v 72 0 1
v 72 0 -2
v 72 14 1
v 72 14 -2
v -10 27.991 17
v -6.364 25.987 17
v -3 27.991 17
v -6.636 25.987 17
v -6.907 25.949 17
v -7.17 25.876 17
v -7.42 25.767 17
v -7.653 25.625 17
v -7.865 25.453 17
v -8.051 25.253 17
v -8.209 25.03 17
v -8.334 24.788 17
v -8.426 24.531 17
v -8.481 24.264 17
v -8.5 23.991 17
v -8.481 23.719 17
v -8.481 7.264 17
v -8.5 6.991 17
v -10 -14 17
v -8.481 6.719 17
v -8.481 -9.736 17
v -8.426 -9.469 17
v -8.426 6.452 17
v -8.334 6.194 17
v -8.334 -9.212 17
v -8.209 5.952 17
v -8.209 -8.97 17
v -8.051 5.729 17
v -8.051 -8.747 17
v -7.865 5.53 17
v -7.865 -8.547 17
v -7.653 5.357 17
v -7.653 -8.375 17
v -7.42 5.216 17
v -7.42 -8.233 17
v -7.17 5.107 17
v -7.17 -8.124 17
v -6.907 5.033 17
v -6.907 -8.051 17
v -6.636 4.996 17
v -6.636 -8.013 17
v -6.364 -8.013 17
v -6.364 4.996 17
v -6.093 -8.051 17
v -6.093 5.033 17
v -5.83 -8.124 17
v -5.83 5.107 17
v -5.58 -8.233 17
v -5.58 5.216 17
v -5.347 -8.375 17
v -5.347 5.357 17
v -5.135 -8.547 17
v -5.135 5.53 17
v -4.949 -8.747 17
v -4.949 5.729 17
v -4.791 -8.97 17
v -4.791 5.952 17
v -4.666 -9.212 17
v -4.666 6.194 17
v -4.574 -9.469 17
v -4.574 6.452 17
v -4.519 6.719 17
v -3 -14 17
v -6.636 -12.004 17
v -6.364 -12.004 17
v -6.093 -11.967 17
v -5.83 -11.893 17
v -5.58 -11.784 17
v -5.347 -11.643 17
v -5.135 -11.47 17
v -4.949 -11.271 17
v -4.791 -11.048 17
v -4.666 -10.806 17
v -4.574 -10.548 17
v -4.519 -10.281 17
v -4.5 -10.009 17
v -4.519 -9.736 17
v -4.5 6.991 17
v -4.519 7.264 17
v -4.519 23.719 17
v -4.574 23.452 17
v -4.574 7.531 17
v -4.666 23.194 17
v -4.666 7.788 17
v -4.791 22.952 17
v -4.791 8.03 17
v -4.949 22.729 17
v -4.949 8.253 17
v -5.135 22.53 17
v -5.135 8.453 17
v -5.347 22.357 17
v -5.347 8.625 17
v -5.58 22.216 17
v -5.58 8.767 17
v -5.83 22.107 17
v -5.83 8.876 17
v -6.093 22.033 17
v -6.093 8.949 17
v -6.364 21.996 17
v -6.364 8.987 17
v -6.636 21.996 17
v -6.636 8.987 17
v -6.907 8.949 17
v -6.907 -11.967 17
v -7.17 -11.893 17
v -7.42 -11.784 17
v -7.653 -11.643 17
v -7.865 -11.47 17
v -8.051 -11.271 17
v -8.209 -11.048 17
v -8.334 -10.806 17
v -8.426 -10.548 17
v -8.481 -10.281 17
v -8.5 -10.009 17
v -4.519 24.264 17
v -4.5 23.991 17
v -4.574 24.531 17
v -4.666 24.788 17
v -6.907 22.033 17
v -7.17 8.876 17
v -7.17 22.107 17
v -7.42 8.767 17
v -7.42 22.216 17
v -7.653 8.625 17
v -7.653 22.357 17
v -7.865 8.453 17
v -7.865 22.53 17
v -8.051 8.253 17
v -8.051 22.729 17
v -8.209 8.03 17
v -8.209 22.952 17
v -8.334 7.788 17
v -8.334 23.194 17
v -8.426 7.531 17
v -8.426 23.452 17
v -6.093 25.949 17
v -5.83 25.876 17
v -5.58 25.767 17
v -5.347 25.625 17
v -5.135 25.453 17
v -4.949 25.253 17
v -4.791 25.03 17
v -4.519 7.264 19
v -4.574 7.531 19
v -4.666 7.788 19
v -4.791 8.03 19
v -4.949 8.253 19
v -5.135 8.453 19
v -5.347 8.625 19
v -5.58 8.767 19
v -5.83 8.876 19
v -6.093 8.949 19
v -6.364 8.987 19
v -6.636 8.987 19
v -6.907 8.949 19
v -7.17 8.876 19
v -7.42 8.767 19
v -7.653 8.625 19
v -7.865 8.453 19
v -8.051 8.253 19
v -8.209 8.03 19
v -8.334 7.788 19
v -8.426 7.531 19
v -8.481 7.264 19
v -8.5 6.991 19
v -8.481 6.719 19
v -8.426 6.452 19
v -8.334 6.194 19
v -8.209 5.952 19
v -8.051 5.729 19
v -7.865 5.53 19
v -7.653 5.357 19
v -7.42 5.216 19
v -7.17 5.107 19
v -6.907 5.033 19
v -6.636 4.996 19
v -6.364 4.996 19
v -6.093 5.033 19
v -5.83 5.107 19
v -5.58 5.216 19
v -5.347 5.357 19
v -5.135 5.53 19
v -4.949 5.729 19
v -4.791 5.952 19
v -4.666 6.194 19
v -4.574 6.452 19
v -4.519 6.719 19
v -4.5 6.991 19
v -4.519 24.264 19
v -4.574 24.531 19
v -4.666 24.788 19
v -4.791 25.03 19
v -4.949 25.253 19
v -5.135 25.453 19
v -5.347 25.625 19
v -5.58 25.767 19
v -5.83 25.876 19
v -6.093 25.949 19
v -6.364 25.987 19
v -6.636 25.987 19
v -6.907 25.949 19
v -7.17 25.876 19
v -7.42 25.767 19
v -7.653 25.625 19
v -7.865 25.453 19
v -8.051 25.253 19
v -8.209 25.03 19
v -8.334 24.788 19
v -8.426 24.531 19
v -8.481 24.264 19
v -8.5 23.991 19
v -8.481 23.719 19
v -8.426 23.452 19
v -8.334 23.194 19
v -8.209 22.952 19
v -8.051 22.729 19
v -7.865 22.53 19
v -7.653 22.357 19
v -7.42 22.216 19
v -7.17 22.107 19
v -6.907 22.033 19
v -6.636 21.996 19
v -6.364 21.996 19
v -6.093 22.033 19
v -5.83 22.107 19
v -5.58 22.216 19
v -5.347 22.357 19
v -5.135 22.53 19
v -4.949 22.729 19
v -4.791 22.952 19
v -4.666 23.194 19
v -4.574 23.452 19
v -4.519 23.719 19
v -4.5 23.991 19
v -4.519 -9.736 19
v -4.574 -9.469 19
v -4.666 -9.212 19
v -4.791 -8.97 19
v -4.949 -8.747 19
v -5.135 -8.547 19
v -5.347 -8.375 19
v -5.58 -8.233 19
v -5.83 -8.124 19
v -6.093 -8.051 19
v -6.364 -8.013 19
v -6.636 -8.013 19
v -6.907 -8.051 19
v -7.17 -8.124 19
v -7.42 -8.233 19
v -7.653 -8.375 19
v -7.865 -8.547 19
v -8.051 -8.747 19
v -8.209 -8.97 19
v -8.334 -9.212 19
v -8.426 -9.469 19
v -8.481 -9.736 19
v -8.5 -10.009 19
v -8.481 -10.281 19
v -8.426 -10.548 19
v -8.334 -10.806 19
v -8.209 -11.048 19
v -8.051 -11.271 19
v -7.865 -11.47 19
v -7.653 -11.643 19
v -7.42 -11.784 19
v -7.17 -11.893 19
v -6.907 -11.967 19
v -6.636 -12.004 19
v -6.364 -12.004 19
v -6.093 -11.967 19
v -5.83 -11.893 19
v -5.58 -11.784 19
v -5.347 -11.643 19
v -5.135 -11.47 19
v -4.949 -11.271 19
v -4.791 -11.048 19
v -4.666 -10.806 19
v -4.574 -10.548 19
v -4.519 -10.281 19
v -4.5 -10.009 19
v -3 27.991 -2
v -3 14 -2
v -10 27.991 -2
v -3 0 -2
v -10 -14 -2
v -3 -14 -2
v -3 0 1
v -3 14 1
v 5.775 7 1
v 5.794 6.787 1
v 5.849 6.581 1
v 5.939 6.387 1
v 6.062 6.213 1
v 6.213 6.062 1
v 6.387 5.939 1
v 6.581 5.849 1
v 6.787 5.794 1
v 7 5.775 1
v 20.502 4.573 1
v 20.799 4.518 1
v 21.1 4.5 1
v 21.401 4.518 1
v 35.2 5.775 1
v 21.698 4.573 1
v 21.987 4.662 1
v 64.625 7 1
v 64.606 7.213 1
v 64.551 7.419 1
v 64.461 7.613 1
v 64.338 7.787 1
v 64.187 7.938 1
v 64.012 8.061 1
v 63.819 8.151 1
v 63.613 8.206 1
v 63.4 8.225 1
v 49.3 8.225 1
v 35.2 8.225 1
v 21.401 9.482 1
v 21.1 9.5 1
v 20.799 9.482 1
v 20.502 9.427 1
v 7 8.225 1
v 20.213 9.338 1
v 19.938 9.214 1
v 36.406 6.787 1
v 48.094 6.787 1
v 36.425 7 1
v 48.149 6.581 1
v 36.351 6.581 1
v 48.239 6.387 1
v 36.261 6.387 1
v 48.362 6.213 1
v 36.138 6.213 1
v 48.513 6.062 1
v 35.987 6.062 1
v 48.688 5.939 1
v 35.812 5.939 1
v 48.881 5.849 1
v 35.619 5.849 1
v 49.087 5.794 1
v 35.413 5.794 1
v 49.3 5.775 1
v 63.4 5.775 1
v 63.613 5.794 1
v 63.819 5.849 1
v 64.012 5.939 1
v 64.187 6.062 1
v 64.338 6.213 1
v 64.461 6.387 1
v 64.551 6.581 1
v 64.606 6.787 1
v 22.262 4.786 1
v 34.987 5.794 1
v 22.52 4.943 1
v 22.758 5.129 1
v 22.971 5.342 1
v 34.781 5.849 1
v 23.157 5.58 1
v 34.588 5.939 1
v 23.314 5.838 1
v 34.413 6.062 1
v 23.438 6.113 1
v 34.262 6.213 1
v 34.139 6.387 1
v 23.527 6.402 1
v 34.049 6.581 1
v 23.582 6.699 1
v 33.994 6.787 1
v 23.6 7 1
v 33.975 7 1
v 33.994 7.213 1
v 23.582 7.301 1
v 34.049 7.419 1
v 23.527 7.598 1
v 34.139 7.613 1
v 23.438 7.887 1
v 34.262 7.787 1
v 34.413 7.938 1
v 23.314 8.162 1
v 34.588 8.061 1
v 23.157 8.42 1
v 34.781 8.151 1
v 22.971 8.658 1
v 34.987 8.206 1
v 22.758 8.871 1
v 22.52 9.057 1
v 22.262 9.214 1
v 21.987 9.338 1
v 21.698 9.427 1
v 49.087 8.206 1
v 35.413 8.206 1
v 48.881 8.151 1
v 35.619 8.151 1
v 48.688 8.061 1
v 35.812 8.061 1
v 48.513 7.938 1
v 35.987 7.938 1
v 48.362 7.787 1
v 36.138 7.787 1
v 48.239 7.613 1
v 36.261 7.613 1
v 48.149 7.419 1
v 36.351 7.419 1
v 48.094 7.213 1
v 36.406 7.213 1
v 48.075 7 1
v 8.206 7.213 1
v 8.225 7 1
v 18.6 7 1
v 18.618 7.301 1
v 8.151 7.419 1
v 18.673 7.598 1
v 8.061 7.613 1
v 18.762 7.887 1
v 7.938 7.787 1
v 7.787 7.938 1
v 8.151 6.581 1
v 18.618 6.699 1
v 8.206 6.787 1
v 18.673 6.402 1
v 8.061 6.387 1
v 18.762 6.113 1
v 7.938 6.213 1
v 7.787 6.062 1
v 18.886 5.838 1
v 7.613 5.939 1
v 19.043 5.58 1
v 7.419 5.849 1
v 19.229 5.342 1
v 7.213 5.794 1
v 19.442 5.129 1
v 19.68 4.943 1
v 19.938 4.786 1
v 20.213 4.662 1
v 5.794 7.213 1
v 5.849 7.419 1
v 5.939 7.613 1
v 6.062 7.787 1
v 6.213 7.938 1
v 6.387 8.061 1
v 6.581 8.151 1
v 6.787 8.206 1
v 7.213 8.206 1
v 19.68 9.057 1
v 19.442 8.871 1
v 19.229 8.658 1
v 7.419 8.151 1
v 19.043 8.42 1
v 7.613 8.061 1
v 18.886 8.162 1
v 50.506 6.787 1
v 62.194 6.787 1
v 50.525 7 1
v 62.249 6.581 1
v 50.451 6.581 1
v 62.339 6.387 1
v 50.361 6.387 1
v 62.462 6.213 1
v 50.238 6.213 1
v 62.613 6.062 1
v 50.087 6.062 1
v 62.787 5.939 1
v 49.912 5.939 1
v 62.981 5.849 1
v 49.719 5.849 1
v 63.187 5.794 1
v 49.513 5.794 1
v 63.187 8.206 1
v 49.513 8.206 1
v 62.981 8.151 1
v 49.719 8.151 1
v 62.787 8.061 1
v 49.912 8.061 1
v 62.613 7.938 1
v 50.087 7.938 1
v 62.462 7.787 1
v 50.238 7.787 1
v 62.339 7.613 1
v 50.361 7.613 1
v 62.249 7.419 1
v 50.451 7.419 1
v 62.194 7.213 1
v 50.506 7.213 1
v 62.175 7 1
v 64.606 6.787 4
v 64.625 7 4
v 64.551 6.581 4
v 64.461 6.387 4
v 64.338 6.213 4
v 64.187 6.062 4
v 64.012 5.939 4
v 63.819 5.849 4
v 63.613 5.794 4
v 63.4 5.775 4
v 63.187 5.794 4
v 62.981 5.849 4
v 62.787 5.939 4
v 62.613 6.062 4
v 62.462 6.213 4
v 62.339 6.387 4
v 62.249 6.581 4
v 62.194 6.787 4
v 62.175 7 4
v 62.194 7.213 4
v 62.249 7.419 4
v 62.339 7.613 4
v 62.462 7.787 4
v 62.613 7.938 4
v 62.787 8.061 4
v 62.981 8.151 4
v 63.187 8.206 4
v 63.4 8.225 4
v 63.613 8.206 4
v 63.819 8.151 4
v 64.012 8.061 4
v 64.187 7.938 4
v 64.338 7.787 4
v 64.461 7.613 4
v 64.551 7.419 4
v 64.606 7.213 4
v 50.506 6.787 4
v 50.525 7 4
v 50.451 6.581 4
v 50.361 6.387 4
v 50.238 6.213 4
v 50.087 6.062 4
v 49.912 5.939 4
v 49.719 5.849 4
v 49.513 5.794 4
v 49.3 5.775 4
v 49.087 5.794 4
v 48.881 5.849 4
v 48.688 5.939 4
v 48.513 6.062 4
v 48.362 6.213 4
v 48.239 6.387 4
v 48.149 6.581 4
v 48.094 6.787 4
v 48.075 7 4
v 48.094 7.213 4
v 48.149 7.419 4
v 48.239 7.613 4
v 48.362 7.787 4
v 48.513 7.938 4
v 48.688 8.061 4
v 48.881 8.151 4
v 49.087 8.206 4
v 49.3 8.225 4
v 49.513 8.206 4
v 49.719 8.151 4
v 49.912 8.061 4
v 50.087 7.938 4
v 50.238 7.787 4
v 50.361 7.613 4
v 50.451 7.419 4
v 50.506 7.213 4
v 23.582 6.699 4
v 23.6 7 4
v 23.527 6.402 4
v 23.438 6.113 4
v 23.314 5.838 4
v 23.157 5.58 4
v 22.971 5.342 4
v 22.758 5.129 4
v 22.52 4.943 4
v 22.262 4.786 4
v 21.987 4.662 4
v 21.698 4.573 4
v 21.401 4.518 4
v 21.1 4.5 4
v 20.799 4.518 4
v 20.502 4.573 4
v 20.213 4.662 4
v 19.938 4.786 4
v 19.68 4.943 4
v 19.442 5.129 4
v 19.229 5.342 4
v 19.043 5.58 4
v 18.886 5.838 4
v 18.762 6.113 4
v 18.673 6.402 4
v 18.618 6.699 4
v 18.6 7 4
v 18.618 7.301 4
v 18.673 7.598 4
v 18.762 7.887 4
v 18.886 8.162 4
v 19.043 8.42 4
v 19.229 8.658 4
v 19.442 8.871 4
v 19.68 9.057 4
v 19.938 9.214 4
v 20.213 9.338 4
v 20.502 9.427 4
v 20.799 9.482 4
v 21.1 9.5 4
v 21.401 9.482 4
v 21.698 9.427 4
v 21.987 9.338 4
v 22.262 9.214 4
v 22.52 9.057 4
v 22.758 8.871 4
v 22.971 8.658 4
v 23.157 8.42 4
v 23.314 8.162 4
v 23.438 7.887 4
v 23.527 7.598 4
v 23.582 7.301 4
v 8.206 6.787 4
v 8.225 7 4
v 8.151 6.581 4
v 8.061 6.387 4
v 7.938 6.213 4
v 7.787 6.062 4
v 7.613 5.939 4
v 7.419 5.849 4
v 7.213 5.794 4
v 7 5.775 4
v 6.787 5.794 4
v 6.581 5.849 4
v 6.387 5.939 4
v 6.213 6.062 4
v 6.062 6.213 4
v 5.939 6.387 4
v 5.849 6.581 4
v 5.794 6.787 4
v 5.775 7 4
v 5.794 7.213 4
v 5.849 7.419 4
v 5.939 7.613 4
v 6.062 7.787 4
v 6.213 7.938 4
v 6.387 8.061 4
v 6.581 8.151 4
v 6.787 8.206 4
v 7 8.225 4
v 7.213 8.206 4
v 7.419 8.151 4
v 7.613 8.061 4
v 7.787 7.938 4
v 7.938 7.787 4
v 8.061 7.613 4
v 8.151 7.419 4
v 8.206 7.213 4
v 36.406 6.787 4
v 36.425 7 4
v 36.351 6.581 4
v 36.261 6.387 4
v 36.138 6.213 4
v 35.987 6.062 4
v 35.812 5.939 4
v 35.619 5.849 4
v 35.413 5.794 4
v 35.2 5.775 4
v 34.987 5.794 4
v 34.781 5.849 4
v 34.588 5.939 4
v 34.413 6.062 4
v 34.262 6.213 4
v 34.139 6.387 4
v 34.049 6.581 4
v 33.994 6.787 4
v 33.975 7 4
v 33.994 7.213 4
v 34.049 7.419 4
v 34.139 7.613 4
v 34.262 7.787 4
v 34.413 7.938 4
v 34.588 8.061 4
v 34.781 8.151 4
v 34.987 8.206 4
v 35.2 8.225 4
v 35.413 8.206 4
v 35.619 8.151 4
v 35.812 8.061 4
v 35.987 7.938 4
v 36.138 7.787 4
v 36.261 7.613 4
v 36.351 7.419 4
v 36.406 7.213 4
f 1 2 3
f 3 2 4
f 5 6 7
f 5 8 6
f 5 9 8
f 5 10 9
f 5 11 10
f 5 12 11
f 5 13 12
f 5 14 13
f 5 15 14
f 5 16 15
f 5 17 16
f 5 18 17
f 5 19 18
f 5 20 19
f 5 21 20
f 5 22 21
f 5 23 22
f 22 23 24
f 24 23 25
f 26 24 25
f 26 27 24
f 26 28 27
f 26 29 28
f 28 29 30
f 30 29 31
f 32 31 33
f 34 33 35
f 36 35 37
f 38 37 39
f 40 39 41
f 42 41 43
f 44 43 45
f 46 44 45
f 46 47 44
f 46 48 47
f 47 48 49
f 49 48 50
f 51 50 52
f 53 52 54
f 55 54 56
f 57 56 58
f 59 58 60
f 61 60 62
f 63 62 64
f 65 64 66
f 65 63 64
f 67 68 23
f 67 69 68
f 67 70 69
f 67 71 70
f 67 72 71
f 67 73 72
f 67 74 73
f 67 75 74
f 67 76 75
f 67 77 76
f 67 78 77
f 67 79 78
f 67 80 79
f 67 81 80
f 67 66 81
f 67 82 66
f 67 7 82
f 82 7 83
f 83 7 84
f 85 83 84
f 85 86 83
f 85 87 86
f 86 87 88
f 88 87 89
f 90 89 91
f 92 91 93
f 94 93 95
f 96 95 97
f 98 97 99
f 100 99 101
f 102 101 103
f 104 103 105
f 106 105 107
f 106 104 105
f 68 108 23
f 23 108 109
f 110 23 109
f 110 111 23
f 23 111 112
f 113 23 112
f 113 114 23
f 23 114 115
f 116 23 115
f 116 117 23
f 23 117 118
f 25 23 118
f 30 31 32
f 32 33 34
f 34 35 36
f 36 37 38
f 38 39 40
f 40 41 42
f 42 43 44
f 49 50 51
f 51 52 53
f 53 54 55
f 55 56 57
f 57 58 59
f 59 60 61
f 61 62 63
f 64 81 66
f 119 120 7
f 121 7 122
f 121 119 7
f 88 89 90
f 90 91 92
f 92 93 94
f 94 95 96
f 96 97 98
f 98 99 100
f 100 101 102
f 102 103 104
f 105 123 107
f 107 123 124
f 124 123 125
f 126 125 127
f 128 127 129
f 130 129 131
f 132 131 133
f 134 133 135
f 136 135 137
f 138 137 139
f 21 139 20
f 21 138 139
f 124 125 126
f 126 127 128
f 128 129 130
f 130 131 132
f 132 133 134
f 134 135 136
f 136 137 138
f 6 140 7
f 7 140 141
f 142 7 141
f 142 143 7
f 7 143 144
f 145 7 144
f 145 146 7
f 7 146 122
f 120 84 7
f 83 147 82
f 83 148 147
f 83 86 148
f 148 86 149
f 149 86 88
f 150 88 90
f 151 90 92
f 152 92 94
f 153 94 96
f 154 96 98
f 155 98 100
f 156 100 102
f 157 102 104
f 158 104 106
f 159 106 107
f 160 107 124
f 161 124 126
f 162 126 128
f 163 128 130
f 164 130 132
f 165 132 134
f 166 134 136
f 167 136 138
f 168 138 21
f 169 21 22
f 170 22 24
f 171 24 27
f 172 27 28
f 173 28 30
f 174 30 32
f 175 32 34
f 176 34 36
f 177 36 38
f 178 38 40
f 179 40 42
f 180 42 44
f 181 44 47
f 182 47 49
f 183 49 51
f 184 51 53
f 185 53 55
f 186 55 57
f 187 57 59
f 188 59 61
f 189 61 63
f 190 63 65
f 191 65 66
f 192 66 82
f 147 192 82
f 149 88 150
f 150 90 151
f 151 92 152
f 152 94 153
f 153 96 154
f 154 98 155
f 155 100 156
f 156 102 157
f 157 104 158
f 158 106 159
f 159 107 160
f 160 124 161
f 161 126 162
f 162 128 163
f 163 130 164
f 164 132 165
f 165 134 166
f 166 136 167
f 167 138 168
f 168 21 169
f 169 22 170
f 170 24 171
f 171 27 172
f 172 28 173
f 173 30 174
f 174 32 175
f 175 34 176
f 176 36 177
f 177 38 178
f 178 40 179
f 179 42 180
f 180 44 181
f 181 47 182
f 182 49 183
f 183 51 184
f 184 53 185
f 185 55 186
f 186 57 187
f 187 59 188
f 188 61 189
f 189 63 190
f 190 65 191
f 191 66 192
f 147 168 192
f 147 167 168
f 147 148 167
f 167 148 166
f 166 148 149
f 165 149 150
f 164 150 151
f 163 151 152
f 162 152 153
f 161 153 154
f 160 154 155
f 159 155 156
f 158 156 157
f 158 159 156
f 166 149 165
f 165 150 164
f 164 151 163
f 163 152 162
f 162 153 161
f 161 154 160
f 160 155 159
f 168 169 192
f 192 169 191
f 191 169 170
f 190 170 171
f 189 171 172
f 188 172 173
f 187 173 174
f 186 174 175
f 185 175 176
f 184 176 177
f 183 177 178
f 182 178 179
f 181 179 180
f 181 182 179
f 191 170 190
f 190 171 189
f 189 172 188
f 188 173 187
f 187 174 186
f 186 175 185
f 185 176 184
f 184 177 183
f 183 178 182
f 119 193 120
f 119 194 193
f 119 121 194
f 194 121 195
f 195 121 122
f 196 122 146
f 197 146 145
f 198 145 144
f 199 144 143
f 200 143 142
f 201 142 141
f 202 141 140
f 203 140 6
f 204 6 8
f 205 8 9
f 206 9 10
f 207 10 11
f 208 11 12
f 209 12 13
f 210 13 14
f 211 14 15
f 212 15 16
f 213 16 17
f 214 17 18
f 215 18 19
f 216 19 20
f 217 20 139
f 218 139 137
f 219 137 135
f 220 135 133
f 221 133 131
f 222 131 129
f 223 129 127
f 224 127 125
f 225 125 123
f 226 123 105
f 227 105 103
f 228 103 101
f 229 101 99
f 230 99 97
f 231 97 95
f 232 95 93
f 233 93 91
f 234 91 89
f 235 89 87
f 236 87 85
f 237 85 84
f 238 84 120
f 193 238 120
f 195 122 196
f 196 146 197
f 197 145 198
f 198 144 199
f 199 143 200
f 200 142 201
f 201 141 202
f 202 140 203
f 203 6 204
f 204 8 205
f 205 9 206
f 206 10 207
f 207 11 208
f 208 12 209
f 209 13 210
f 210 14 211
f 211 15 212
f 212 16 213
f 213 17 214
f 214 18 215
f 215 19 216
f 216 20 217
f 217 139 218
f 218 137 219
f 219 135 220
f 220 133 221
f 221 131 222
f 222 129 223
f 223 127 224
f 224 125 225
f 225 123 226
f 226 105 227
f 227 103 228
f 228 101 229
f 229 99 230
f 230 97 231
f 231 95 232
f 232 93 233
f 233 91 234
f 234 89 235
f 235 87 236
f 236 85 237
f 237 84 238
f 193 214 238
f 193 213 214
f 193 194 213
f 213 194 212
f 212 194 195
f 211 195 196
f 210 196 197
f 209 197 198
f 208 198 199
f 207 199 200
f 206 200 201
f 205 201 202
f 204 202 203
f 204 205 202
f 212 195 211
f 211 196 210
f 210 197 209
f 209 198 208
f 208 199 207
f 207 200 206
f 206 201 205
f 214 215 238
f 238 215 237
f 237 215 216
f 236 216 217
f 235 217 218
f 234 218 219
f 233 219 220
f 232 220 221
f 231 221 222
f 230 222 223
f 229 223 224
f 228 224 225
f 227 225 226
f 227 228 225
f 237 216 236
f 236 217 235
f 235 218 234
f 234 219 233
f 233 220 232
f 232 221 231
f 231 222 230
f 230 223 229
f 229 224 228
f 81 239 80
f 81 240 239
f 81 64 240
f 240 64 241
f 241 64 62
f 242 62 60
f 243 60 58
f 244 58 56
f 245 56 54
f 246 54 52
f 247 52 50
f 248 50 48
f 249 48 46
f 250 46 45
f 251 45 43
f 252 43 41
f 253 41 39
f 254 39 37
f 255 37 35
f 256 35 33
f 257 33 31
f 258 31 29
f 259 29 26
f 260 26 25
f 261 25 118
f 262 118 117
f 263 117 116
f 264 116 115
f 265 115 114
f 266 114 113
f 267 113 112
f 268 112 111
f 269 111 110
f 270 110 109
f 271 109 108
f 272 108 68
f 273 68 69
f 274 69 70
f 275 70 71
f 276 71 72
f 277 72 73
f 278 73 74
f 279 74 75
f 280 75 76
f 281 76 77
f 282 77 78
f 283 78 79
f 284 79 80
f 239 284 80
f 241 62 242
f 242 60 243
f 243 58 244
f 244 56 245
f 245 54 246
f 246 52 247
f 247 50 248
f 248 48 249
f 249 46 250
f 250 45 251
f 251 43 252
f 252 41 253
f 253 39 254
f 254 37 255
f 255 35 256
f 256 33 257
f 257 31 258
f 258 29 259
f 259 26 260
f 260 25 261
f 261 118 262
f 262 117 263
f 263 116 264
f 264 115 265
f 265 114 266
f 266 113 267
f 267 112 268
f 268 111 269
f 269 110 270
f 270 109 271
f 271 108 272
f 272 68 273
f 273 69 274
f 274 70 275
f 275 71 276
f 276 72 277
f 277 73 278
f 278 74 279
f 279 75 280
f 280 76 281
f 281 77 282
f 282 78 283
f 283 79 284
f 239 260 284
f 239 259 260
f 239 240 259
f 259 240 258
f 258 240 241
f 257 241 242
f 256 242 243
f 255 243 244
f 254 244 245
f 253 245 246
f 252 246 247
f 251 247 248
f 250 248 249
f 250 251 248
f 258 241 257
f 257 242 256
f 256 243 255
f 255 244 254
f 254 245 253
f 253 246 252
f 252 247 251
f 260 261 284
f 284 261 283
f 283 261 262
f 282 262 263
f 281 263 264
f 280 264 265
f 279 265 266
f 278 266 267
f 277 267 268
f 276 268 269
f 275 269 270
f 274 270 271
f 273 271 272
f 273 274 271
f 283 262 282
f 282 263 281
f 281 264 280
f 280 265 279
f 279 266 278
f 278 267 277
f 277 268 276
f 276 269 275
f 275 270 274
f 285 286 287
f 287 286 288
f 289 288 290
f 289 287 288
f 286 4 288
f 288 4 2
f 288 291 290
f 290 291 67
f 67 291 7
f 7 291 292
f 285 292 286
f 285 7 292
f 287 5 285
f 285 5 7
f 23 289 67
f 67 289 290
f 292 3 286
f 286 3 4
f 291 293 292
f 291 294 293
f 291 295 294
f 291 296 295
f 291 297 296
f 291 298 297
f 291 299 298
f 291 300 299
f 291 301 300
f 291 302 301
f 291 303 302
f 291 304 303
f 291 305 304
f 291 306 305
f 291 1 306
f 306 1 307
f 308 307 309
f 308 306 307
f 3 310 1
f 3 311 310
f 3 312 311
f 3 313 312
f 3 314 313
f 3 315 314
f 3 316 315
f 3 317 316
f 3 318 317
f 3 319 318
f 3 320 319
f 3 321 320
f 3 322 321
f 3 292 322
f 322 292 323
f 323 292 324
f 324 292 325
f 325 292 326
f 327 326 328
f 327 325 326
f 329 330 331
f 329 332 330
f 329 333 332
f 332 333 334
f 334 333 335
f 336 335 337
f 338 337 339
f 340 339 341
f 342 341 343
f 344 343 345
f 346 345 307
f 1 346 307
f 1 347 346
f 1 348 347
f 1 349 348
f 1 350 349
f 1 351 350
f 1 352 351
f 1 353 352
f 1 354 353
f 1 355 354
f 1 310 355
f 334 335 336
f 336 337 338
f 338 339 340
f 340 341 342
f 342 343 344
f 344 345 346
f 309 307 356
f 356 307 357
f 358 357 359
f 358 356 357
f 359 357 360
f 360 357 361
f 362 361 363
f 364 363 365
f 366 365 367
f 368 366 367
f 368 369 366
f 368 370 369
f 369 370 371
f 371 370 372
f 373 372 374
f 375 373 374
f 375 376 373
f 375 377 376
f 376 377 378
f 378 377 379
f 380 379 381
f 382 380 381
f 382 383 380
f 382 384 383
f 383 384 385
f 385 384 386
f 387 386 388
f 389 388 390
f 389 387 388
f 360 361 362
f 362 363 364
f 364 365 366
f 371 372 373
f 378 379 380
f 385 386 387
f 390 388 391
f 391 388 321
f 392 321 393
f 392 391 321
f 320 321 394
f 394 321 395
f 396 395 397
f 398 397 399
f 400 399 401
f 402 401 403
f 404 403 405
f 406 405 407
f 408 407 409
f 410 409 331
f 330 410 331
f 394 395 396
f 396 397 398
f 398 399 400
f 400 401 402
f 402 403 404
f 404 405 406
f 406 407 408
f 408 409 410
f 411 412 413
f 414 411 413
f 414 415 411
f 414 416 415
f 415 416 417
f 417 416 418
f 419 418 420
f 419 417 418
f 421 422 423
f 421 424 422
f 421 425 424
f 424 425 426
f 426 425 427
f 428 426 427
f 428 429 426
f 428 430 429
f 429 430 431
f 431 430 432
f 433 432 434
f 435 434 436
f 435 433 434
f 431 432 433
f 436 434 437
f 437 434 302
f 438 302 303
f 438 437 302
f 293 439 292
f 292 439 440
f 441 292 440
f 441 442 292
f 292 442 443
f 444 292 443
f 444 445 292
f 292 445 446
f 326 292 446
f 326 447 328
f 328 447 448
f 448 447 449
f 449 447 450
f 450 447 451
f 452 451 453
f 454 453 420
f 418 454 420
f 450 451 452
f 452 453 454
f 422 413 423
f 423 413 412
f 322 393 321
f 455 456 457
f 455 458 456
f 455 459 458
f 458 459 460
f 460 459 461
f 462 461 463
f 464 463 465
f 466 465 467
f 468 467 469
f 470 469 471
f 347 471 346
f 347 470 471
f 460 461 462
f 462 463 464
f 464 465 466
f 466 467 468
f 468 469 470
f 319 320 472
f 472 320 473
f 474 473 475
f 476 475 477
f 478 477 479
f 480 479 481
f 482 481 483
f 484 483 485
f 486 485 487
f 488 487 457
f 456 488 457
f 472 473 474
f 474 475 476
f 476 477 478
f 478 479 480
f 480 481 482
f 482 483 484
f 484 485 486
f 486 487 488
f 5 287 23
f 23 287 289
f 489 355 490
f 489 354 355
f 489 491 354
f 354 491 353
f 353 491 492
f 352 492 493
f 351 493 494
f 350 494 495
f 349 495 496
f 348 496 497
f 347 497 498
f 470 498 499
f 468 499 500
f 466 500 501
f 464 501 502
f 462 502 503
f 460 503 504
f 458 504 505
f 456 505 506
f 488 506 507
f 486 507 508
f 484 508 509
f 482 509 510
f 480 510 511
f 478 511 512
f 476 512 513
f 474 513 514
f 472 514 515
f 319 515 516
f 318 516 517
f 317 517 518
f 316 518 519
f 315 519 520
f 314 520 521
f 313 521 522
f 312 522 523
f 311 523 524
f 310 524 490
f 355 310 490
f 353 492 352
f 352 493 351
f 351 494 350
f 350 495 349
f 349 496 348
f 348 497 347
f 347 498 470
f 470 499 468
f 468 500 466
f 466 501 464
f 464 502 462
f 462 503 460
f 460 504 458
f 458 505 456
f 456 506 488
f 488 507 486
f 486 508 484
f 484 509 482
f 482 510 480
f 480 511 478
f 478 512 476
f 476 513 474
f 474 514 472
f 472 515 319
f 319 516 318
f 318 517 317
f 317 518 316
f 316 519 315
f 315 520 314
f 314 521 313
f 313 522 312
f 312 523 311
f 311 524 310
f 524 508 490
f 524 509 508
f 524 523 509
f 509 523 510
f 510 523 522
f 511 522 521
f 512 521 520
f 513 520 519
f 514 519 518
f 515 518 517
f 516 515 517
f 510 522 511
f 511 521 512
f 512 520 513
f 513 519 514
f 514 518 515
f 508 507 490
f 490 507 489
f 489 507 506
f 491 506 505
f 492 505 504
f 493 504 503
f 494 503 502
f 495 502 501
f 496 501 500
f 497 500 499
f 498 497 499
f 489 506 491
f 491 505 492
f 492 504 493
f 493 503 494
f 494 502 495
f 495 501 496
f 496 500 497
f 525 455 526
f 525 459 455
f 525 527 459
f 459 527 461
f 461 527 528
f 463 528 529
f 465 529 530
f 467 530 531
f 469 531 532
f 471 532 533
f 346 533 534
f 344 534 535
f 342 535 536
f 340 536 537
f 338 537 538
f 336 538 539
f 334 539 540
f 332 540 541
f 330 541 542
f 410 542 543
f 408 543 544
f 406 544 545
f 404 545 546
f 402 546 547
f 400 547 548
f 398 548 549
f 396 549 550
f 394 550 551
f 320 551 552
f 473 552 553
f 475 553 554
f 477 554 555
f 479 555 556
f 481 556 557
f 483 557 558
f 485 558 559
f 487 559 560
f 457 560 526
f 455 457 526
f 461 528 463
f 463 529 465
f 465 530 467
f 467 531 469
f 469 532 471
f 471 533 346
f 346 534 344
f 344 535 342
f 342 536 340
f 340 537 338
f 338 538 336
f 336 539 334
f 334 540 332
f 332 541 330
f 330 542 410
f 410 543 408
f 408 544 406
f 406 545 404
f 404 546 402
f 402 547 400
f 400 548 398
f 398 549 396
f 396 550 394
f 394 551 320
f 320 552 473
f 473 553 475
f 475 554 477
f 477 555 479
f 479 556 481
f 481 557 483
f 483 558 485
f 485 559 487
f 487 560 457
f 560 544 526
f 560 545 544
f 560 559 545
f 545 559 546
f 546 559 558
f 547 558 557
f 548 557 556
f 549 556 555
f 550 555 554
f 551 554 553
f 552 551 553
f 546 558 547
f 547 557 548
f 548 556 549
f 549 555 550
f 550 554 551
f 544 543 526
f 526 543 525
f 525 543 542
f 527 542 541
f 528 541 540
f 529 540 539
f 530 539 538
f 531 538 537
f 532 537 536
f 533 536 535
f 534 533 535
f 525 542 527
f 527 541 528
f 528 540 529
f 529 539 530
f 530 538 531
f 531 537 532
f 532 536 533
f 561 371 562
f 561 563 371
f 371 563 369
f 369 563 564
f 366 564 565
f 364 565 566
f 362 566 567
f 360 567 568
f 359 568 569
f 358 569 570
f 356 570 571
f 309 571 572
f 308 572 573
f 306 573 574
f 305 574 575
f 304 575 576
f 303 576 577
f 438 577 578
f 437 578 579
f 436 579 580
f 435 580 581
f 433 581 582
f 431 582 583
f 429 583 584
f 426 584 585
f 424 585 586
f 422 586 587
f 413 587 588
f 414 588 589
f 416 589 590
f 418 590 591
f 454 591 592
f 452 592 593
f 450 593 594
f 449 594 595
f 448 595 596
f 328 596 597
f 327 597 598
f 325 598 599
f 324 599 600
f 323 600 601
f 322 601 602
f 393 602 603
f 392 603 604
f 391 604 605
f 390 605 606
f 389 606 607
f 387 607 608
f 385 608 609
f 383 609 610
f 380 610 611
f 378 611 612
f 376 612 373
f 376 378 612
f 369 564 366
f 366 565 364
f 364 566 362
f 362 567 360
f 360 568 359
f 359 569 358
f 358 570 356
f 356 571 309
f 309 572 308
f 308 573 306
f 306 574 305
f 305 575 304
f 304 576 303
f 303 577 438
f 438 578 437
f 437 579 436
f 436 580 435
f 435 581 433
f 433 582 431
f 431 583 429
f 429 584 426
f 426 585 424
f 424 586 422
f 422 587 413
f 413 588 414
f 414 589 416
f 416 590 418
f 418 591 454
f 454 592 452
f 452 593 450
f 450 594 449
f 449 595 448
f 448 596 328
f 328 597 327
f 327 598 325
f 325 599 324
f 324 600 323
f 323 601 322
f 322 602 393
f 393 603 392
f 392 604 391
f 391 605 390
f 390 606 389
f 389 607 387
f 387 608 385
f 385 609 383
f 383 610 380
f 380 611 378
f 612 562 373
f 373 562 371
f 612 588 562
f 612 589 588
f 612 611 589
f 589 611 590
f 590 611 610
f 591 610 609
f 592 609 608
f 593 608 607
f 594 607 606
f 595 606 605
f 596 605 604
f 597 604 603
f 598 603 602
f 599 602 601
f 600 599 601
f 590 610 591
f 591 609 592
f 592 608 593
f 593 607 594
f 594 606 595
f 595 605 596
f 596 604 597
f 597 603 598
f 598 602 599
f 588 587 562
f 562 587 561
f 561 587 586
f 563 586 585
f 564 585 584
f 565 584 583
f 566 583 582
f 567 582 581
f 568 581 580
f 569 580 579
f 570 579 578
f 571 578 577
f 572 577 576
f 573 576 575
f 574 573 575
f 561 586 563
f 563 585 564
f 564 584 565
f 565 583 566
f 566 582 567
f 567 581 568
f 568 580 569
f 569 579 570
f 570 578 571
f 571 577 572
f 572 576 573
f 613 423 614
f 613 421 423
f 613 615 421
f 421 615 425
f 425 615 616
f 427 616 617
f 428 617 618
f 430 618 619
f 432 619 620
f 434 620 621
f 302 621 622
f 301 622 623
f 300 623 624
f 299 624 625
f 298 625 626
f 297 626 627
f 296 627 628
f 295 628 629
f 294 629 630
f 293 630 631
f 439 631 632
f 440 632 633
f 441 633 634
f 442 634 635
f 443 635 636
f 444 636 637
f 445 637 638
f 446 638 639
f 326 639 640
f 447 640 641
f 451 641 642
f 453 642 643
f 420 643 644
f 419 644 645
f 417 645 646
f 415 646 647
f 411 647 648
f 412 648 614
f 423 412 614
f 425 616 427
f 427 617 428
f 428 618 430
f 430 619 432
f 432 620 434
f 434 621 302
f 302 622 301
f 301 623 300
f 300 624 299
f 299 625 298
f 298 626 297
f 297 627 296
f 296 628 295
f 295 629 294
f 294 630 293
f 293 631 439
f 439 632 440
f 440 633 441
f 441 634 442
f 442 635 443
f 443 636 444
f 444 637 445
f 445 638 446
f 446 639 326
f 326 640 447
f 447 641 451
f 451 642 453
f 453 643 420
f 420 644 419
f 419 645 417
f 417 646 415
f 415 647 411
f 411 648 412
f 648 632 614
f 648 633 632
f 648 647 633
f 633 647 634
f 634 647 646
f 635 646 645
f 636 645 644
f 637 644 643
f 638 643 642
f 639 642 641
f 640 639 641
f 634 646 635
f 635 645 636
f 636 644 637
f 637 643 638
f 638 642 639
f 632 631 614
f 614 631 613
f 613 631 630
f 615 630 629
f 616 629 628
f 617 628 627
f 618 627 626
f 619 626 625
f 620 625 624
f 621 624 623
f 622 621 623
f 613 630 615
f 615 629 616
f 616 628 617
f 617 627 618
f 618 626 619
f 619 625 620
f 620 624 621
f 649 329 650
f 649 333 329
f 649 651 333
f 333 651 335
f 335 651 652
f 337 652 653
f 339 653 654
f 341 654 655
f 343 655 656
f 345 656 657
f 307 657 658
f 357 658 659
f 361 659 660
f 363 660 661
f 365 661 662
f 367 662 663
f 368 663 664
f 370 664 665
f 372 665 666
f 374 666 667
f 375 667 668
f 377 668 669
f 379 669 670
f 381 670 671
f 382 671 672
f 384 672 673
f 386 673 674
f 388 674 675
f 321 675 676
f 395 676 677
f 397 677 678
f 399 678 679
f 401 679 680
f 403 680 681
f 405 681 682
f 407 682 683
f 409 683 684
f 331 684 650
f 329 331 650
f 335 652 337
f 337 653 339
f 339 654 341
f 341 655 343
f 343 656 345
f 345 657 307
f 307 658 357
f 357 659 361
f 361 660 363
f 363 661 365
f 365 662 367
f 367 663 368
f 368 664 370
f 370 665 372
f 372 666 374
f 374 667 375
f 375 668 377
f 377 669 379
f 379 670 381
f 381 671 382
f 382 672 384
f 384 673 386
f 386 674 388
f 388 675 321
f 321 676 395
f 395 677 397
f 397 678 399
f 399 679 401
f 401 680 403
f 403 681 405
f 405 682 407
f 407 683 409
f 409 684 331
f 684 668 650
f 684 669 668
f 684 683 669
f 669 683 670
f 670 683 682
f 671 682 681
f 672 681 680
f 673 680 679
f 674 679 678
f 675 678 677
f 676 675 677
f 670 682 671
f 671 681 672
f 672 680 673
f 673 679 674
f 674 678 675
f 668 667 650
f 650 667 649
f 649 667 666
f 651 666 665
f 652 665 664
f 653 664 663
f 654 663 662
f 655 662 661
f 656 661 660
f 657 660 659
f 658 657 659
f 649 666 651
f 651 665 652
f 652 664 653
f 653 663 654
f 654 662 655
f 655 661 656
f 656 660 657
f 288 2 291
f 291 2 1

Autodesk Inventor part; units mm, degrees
ref_plane "YZ Plane" through (0, 0, 0) normal (1, 0, 0) x (0, 1, 0)
ref_plane "XZ Plane" through (0, 0, 0) normal (0, 1, 0) x (-1, 0, 0)
ref_plane "XY Plane" through (0, 0, 0) normal (0, 0, 1) x (1, 0, 0)
sketch "Sketch1" plane through (0, 0, 0) normal (0, 0, 1) x (1, 0, 0)
  line L0 (0, 0) -> (70, 0)
  line L1 (70, 0) -> (70, 14)
  line L2 (70, 14) -> (0, 14)
  line L3 (0, 14) -> (0, 0)
  dimension "d0" = 70
  dimension "d1" = 14
extrude "Extrusion1" add sketch "Sketch1" along normal blind 1
sketch "Sketch2" plane through (0, 0, 1) normal (0, 0, 1) x (1, 0, 0)
  line L0 (70, 14) -> (0, 14) projected
  line L1 (0, 14) -> (0, 0) projected
  circle A0 centre (7, 7) radius 1.225
  circle A1 centre (35.2, 7) radius 1.225
  dimension "d5" = 70
  dimension "d6" = 14
  dimension "d9" = 2.45
  dimension "d10" = 2.45
  dimension "d32" = 28.2
extrude "Extrusion5" add sketch "Sketch2" along normal blind 3
sketch "Sketch4" plane through (0, 0, 1) normal (0, 0, 1) x (1, 0, 0)
  circle A0 centre (21.1, 7) radius 2.5
  line L0 (0, 0) -> (70, 0) projected
  line L1 (0, 14) -> (0, 0) projected
  circle A1 centre (7, 7) radius 1.225 projected
  point P0 (6, 0)
  point P1 (64, 0)
  point P2 (0, 8)
  point P3 (0, 6)
  dimension "d25" = 5
  dimension "d26" = 7
  dimension "d29" = 14.1
extrude "Extrusion6" add sketch "Sketch4" along normal blind 3 contours A0
sketch "Sketch5" plane through (0, 0, 1) normal (0, 0, 1) x (1, 0, 0)
  circle A0 centre (35.2, 7) radius 1.225 projected
  circle A1 centre (49.3, 7) radius 1.225
  point P0 (0, 0)
  dimension "d34" = 14.1
extrude "Extrusion7" add sketch "Sketch5" along normal blind 3 contours A1
pattern_linear "Rectangular Pattern2" count 2 spacing 14.1 along (1, 0, 0) of "Extrusion7"
sketch "Sketch6" plane through (0, 0, 0) normal (-1, 0, 0) x (0, 0, 1)
  line L0 (1, 0) -> (1, 14) projected
  line L1 (0, 0) -> (1, 0)
  line L2 (1, 0) -> (1, 14)
  line L3 (1, 14) -> (0, 14)
  line L4 (0, 14) -> (0, 0)
  line L5 (0, 14) -> (1, 14)
  line L6 (0, 0) -> (1, 0) projected
  line L7 (0, 0) -> (1, 0)
extrude "Extrusion8" add sketch "Sketch6" along normal blind 10
sketch "Sketch7" plane through (-10, 0, 0) normal (-1, 0, 0) x (0, 0, 1)
  line L0 (0, 0) -> (1, 0) projected
  line L1 (0, 0) -> (1, 0)
  line L2 (1, 0) -> (1, -14)
  line L3 (1, -14) -> (0, -14)
  line L4 (0, -14) -> (0, 0)
  line L5 (0, 13.9913) -> (1, 13.9913)
  line L6 (1, 13.9913) -> (1, 27.9913)
  line L7 (1, 27.9913) -> (0, 27.9913)
  line L8 (0, 27.9913) -> (0, 13.9913)
  line L9 (1, 0) -> (1, 14) projected
  line L10 (0, 0) -> (0, 14) projected
  line L11 (1, 14) -> (0, 14)
  line L12 (0, 14) -> (0, 0)
  line L13 (0, 0) -> (1, 0)
  line L14 (1, 0) -> (1, 14)
  dimension "d47" = 14
  dimension "d48" = 14
extrude "Extrusion9" add sketch "Sketch7" against normal blind 7
sketch "Sketch8" plane through (0, 0, 0) normal (0, 0, -1) x (-1, 0, 0)
  line L0 (10, 27.9913) -> (10, -14) projected
  line L1 (10, 27.9913) -> (3, 27.9913)
  line L2 (3, 27.9913) -> (3, -14)
  line L3 (3, -14) -> (10, -14)
  line L4 (10, -14) -> (10, 27.9913)
  line L5 (-70, 0) -> (-70, 14) projected
  line L6 (-70, 14) -> (3, 14) projected
  line L7 (-70, 0) -> (3, 0)
  line L8 (3, 0) -> (3, 14)
  line L9 (3, 14) -> (-70, 14)
  line L10 (-70, 14) -> (-70, 0)
  point P0 (0, 0)
extrude "Extrusion10" add sketch "Sketch8" along normal blind 2
sketch "Sketch9" plane through (0, 0, 1) normal (0, 0, 1) x (1, 0, 0)
  circle A0 centre (-6.5, 23.9913) radius 2
  line L0 (-3, 27.9913) -> (-3, 14) projected
  line L1 (-10, 27.9913) -> (-3, 27.9913) projected
  circle A1 centre (-6.5, 6.9913) radius 2
  circle A2 centre (-6.5, -10.0087) radius 2
  line L2 (-10, -14) -> (-3, -14) projected
  line L3 (-10, -14) -> (-10, 27.9913) projected
  point P0 (0, 0)
  dimension "d53" = 4
  dimension "d54" = 3.5
  dimension "d55" = 4
  dimension "d58" = 17
  dimension "d63" = 41.9913
  dimension "d64" = 17
  dimension "d65" = 3.9913
extrude "Extrusion11" add sketch "Sketch9" along normal blind 18
sketch "Sketch10" plane through (0, 0, 1) normal (0, 0, 1) x (1, 0, 0)
  line L0 (-10, -14) -> (-3, -14) projected
  line L1 (-3, 27.9913) -> (-10, 27.9913)
  line L2 (-10, 27.9913) -> (-10, -14)
  line L3 (-10, -14) -> (-3, -14)
  line L4 (-3, -14) -> (-3, 27.9913)
  point P0 (0, 0)
extrude "Extrusion12" add sketch "Sketch10" along normal blind 16
sketch "Sketch11" plane through (70, 0, 1) normal (1, 0, 0) x (0, 0, -1)
  line L0 (3, 0) -> (0, 0) projected
  line L1 (3, 14) -> (0, 14) projected
  line L2 (3, 0) -> (0, 0)
  line L3 (0, 0) -> (0, 14)
  line L4 (0, 14) -> (3, 14)
  line L5 (3, 14) -> (3, 0)
  point P0 (1, 0)
extrude "Extrusion13" add sketch "Sketch11" along normal blind 2
properties part number "Kroller Holder2"
